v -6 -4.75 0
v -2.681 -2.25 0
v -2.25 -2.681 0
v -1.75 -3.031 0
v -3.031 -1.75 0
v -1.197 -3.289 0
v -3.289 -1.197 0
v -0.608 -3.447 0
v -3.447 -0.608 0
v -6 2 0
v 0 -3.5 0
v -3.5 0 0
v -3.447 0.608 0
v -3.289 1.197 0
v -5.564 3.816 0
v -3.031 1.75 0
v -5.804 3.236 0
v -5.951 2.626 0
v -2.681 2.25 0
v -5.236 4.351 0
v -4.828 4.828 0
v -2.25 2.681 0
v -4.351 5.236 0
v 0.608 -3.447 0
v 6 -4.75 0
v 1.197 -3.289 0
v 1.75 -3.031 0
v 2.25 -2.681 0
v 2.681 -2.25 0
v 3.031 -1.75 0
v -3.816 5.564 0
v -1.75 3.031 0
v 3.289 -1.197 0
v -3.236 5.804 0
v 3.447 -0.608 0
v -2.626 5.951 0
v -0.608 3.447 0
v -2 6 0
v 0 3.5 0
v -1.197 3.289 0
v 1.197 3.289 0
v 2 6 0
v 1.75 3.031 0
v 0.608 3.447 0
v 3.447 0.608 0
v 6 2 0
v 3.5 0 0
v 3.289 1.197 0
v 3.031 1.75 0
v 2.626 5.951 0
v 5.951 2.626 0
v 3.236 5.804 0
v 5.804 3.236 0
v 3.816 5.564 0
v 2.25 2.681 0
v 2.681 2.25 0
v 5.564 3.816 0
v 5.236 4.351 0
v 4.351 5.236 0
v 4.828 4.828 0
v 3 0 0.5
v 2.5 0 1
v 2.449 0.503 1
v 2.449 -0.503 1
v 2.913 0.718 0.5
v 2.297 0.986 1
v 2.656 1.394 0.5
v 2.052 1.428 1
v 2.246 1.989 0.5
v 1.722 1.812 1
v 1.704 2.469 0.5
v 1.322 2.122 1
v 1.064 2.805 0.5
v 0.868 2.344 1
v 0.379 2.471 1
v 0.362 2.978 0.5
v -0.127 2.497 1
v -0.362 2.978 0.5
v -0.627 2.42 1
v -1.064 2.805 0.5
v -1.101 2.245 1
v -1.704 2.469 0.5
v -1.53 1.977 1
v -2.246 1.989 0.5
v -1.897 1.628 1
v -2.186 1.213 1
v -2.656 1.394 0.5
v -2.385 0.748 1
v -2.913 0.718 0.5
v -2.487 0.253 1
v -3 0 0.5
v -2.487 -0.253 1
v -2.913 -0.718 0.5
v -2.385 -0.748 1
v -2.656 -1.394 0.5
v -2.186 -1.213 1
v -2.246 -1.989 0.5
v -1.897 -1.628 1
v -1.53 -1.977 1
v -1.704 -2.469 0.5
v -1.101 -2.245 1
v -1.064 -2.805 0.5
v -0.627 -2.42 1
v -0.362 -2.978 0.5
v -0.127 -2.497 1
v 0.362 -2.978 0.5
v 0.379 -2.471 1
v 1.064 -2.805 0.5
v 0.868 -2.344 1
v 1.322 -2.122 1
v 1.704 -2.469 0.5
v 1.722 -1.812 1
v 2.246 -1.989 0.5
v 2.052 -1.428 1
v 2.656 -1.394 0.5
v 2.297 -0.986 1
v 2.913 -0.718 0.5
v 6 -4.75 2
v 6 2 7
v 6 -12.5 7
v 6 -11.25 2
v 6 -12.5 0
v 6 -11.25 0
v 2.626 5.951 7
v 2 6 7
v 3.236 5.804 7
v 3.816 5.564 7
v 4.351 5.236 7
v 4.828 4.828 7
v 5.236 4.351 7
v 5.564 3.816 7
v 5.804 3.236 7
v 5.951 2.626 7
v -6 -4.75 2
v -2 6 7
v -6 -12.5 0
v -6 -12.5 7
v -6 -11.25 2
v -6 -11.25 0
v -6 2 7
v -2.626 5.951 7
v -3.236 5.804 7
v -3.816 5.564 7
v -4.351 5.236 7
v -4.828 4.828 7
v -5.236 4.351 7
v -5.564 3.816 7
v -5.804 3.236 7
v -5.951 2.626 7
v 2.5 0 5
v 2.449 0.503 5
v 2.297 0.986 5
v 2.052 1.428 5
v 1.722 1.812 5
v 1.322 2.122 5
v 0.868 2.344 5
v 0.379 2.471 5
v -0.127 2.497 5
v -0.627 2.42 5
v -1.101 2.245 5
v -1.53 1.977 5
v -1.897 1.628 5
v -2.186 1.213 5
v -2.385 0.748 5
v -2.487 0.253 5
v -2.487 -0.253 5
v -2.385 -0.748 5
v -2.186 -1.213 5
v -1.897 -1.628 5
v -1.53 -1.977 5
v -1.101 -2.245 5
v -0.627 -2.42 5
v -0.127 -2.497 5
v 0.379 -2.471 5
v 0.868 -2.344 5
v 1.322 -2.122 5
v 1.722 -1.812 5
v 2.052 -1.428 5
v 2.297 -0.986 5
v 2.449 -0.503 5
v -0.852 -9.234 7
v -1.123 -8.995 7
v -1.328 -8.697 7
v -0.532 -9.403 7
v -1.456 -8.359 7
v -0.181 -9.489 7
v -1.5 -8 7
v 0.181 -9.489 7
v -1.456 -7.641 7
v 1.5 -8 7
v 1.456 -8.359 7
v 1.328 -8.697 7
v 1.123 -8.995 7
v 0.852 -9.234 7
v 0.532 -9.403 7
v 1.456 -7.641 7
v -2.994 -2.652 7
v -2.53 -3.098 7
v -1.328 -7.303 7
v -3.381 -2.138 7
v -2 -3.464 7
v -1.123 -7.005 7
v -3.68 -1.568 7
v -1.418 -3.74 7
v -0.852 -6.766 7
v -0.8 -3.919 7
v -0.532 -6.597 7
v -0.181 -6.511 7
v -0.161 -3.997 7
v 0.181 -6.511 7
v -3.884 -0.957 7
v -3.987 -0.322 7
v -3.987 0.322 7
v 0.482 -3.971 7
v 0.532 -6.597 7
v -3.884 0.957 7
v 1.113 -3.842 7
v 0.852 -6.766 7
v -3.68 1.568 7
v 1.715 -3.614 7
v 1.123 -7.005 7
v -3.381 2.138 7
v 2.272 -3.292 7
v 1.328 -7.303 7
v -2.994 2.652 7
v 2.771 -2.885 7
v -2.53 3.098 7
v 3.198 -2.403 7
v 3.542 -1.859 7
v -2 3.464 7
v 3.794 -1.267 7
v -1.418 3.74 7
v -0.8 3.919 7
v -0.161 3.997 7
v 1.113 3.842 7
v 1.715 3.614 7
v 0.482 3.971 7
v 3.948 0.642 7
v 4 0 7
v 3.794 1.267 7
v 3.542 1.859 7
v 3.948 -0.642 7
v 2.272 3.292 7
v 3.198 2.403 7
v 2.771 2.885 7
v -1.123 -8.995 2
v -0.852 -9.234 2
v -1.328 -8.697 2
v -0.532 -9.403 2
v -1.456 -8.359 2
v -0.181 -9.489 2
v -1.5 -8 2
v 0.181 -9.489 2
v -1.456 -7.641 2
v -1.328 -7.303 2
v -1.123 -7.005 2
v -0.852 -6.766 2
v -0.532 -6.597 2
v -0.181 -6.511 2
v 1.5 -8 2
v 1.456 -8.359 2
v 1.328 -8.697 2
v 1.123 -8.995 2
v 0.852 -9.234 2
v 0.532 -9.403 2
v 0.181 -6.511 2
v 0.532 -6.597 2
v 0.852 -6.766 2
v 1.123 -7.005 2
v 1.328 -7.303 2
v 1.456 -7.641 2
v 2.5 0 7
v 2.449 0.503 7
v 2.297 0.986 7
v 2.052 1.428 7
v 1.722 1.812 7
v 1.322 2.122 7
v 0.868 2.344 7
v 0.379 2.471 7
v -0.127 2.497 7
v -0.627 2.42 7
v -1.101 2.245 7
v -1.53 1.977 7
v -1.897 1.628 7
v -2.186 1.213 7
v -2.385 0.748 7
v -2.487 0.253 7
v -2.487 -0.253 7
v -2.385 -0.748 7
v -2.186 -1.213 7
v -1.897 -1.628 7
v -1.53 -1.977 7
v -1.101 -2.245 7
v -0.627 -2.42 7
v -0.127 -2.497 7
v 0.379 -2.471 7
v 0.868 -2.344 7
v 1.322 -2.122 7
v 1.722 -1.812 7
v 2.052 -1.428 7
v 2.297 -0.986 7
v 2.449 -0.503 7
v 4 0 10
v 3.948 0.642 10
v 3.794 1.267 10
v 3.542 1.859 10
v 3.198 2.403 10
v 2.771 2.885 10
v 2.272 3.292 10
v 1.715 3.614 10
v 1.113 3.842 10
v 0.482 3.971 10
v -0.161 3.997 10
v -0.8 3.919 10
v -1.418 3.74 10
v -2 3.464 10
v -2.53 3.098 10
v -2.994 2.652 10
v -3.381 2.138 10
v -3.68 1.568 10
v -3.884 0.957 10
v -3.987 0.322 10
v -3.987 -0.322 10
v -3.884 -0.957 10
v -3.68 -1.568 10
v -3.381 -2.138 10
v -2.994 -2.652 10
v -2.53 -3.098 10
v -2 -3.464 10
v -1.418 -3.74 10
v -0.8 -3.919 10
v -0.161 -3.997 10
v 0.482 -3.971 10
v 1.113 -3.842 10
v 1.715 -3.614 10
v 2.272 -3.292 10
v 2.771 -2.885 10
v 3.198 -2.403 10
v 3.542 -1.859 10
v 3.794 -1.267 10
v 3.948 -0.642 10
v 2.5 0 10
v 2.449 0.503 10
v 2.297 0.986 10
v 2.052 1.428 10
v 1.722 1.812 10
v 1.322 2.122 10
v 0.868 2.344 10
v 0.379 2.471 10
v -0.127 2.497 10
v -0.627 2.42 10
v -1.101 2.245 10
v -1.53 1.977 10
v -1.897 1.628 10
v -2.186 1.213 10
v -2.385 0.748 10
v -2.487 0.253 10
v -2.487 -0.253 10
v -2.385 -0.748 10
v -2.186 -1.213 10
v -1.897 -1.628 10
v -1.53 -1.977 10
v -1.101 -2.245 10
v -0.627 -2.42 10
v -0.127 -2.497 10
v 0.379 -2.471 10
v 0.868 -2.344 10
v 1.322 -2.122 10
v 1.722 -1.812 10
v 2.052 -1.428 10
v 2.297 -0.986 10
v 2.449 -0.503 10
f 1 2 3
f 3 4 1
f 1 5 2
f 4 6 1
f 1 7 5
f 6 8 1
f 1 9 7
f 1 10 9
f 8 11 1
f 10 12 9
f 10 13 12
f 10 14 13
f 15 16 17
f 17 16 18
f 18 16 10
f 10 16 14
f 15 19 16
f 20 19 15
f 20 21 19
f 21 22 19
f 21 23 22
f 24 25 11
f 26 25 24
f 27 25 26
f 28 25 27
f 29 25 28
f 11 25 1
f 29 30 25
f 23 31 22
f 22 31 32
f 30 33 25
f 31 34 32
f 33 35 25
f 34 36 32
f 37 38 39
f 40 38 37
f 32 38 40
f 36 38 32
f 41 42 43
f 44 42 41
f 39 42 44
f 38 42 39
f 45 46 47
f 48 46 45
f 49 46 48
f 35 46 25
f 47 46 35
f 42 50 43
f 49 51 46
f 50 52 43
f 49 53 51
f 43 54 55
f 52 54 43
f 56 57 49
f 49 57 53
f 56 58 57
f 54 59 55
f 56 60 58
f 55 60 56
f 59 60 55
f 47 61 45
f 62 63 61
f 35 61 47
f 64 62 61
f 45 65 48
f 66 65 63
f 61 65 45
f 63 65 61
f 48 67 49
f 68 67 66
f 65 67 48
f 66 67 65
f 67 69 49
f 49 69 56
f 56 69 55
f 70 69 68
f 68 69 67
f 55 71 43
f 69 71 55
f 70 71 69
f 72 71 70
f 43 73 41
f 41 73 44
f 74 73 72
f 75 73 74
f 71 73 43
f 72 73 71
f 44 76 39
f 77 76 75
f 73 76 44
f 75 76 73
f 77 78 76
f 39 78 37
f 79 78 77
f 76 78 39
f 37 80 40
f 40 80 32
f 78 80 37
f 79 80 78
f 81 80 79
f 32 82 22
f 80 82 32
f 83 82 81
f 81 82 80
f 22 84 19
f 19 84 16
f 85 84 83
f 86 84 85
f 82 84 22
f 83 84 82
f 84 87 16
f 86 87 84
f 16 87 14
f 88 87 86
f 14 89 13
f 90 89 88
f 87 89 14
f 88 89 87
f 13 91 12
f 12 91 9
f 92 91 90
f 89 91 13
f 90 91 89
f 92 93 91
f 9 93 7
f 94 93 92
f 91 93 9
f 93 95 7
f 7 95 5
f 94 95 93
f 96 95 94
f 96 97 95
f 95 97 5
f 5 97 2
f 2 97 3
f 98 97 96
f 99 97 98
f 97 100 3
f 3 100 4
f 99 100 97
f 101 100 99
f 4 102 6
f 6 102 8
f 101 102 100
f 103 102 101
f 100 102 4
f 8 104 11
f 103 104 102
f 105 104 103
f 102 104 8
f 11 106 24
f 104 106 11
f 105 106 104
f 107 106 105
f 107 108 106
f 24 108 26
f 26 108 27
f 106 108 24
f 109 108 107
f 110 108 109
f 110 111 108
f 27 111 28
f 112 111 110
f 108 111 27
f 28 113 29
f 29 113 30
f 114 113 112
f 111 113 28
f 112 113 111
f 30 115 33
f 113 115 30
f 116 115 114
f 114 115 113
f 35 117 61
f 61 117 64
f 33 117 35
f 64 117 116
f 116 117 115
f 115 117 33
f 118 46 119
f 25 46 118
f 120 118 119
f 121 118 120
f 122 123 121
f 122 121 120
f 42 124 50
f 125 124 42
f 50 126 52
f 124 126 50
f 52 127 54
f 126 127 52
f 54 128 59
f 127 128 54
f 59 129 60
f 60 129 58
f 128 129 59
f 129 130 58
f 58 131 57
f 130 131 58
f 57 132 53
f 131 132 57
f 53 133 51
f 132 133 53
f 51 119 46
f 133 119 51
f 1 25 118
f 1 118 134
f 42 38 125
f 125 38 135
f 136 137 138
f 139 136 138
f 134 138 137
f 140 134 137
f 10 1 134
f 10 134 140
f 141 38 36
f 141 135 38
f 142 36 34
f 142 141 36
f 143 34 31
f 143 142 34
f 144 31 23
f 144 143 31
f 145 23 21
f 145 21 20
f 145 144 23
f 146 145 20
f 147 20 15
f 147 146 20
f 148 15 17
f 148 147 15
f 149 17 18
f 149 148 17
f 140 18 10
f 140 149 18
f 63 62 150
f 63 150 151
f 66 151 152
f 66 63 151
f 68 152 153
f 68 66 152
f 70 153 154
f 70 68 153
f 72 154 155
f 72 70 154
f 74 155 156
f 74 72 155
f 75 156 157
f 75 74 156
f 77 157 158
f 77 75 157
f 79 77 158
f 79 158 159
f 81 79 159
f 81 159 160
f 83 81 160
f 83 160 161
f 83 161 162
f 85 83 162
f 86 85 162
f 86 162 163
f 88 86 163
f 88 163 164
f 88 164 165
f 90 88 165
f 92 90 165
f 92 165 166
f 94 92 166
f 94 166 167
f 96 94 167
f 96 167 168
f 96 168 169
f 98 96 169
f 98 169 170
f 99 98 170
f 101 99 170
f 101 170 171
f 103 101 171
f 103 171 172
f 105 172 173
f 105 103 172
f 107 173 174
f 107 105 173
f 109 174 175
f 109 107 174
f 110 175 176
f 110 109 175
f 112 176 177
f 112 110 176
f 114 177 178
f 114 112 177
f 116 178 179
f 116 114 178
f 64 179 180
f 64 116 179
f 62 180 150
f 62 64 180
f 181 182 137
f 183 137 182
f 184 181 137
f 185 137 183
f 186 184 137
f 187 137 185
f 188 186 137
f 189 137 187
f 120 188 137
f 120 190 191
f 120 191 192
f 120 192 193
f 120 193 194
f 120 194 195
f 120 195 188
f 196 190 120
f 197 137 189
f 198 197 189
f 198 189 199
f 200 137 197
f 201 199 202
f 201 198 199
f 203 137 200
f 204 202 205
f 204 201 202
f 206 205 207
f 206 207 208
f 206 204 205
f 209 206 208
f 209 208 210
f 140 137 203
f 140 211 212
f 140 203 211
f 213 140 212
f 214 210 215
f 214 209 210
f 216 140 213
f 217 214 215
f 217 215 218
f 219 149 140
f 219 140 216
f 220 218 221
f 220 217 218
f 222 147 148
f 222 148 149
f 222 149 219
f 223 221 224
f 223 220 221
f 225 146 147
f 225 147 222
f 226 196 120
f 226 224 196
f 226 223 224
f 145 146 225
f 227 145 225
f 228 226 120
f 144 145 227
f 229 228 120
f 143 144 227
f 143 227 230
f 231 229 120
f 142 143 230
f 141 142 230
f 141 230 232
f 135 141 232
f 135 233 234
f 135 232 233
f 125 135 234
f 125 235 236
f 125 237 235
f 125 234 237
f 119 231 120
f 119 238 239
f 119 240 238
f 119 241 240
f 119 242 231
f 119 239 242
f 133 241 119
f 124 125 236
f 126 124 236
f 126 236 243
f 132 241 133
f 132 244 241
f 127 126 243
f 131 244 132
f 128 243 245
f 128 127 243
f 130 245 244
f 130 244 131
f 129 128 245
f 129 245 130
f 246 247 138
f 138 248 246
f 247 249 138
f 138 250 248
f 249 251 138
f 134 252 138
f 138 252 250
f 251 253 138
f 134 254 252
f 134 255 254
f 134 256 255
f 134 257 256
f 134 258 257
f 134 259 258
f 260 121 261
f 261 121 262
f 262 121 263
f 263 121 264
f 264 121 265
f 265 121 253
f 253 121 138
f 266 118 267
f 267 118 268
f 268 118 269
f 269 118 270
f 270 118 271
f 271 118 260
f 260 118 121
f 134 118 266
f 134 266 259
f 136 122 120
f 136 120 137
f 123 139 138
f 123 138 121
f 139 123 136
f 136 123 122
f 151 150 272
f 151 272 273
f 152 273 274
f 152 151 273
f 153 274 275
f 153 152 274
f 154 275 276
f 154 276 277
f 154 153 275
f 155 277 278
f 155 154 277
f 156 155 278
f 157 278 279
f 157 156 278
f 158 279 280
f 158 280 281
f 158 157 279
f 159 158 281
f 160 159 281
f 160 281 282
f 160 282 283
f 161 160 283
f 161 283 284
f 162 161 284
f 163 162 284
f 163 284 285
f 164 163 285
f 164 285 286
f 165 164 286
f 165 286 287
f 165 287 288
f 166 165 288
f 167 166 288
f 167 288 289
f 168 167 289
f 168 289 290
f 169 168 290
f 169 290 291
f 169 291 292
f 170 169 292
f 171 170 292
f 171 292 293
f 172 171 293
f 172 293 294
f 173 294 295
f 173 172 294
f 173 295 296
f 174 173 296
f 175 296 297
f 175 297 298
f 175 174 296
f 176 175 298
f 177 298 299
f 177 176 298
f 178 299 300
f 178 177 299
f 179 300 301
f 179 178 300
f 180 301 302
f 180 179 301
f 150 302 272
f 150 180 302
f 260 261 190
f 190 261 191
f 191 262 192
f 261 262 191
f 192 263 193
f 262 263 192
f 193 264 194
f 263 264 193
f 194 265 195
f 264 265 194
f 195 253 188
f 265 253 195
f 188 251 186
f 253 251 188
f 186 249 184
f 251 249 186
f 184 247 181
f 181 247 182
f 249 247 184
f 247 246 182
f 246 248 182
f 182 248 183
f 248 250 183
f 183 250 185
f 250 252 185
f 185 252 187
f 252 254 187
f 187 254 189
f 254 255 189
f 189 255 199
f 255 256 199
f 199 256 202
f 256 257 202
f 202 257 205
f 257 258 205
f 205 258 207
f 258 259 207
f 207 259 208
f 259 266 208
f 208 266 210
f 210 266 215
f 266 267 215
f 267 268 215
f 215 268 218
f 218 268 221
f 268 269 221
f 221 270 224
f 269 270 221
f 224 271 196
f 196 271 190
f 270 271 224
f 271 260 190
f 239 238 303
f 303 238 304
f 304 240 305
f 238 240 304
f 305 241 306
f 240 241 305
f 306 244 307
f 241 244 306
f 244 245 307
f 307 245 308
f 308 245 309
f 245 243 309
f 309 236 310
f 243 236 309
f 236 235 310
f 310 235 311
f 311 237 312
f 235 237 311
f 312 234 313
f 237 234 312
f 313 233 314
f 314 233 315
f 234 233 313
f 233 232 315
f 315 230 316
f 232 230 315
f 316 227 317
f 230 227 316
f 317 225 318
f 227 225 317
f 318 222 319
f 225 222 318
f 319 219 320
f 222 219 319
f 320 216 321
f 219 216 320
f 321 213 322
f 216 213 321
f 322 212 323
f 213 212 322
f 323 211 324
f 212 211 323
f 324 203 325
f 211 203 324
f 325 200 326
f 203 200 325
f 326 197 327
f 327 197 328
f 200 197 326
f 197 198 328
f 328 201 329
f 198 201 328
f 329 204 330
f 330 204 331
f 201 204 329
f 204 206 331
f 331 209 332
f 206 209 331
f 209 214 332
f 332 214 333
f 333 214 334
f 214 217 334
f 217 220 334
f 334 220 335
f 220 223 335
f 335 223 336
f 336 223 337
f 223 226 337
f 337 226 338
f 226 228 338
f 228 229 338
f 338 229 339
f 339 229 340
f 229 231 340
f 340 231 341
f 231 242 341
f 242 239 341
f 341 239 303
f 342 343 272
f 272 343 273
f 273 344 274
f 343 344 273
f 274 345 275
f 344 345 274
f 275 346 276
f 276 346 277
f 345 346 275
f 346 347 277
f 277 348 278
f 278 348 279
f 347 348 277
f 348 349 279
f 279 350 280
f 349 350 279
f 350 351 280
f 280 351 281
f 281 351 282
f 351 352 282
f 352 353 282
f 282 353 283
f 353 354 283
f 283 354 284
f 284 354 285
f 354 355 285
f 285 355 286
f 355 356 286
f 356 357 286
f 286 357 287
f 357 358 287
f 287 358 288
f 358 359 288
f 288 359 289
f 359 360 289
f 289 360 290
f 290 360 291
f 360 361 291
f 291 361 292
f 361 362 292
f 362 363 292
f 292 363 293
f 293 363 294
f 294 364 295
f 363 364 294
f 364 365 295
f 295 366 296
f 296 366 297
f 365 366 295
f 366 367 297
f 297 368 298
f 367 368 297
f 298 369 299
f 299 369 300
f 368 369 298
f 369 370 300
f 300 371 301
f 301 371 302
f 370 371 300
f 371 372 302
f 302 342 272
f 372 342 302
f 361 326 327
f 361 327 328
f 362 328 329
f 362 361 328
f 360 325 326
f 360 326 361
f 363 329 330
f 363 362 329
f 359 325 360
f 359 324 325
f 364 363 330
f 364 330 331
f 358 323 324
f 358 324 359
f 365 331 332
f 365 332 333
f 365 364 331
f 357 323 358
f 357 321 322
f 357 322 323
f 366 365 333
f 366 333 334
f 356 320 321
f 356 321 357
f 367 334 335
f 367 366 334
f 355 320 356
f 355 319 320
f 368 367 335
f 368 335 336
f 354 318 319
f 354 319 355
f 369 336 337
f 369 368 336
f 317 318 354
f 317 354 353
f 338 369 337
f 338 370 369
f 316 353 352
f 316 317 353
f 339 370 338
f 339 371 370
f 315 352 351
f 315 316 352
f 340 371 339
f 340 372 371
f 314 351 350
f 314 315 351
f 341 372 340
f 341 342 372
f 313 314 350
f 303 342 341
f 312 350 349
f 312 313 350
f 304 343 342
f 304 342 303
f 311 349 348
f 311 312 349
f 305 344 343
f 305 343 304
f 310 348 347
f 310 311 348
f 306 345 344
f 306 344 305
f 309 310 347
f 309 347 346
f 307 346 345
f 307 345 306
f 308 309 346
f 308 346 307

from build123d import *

# Parameters (mm, degrees)
SKETCH_W        = 12
SKETCH_H        = 18.5
SKETCH_R        = 2.5
PAD_DEPTH       = 7
SKETCH001_W     = 12
SKETCH001_H     = 6.5
POCKET_DEPTH    = 2
SKETCH002_R     = 1.5
POCKET001_DEPTH = 5.001
SKETCH003_R     = 4
PAD001_DEPTH    = 3
SKETCH004_R     = 2.5
POCKET002_DEPTH = 5
FILLET_R        = 4
CHAMFER_SIZE    = 1


with BuildPart() as part:
    # Sketch → Pad (new body)
    with BuildSketch(Plane.XY):
        with Locations((0, -3.25)):
            Rectangle(SKETCH_W, SKETCH_H)
        Circle(SKETCH_R, mode=Mode.SUBTRACT)
    extrude(amount=PAD_DEPTH)

    # Sketch001 (on Face6 of Pad) → Pocket (cut)
    with BuildSketch(Plane(origin=(0, 0, 0), x_dir=(1, 0, 0), z_dir=(0, 0, -1))):
        with Locations((0, 8)):
            Rectangle(SKETCH001_W, SKETCH001_H)
    extrude(amount=-POCKET_DEPTH, mode=Mode.SUBTRACT)

    # Sketch002 (on Face7 of Pocket) → Pocket001 (cut, through all)
    with BuildSketch(Plane(origin=(0, 0, 2), x_dir=(1, 0, 0), z_dir=(0, 0, -1))):
        with Locations((0, 8)):
            Circle(SKETCH002_R)
    extrude(amount=-POCKET001_DEPTH, mode=Mode.SUBTRACT)

    # Sketch003 (on Face7 of Pad) → Pad001 (join)
    with BuildSketch(Plane.XY.offset(7)):
        Circle(SKETCH003_R)
    extrude(amount=PAD001_DEPTH)

    # Sketch004 (on Face15 of Pad001) → Pocket002 (cut)
    with BuildSketch(Plane.XY.offset(10)):
        Circle(SKETCH004_R)
    extrude(amount=-POCKET002_DEPTH, mode=Mode.SUBTRACT)

    # Fillet
    fillet_edges = [part.edges().sort_by_distance(p)[0] for p in [
        (6, 6, 3.5),
        (-6, 6, 3.5),
    ]]
    fillet(fillet_edges, radius=FILLET_R)

    # Chamfer
    chamfer_edges = [part.edges().sort_by_distance(p)[0] for p in [
        (-2.5, 0, 0),
    ]]
    chamfer(chamfer_edges, length=CHAMFER_SIZE)


solid = part.part
